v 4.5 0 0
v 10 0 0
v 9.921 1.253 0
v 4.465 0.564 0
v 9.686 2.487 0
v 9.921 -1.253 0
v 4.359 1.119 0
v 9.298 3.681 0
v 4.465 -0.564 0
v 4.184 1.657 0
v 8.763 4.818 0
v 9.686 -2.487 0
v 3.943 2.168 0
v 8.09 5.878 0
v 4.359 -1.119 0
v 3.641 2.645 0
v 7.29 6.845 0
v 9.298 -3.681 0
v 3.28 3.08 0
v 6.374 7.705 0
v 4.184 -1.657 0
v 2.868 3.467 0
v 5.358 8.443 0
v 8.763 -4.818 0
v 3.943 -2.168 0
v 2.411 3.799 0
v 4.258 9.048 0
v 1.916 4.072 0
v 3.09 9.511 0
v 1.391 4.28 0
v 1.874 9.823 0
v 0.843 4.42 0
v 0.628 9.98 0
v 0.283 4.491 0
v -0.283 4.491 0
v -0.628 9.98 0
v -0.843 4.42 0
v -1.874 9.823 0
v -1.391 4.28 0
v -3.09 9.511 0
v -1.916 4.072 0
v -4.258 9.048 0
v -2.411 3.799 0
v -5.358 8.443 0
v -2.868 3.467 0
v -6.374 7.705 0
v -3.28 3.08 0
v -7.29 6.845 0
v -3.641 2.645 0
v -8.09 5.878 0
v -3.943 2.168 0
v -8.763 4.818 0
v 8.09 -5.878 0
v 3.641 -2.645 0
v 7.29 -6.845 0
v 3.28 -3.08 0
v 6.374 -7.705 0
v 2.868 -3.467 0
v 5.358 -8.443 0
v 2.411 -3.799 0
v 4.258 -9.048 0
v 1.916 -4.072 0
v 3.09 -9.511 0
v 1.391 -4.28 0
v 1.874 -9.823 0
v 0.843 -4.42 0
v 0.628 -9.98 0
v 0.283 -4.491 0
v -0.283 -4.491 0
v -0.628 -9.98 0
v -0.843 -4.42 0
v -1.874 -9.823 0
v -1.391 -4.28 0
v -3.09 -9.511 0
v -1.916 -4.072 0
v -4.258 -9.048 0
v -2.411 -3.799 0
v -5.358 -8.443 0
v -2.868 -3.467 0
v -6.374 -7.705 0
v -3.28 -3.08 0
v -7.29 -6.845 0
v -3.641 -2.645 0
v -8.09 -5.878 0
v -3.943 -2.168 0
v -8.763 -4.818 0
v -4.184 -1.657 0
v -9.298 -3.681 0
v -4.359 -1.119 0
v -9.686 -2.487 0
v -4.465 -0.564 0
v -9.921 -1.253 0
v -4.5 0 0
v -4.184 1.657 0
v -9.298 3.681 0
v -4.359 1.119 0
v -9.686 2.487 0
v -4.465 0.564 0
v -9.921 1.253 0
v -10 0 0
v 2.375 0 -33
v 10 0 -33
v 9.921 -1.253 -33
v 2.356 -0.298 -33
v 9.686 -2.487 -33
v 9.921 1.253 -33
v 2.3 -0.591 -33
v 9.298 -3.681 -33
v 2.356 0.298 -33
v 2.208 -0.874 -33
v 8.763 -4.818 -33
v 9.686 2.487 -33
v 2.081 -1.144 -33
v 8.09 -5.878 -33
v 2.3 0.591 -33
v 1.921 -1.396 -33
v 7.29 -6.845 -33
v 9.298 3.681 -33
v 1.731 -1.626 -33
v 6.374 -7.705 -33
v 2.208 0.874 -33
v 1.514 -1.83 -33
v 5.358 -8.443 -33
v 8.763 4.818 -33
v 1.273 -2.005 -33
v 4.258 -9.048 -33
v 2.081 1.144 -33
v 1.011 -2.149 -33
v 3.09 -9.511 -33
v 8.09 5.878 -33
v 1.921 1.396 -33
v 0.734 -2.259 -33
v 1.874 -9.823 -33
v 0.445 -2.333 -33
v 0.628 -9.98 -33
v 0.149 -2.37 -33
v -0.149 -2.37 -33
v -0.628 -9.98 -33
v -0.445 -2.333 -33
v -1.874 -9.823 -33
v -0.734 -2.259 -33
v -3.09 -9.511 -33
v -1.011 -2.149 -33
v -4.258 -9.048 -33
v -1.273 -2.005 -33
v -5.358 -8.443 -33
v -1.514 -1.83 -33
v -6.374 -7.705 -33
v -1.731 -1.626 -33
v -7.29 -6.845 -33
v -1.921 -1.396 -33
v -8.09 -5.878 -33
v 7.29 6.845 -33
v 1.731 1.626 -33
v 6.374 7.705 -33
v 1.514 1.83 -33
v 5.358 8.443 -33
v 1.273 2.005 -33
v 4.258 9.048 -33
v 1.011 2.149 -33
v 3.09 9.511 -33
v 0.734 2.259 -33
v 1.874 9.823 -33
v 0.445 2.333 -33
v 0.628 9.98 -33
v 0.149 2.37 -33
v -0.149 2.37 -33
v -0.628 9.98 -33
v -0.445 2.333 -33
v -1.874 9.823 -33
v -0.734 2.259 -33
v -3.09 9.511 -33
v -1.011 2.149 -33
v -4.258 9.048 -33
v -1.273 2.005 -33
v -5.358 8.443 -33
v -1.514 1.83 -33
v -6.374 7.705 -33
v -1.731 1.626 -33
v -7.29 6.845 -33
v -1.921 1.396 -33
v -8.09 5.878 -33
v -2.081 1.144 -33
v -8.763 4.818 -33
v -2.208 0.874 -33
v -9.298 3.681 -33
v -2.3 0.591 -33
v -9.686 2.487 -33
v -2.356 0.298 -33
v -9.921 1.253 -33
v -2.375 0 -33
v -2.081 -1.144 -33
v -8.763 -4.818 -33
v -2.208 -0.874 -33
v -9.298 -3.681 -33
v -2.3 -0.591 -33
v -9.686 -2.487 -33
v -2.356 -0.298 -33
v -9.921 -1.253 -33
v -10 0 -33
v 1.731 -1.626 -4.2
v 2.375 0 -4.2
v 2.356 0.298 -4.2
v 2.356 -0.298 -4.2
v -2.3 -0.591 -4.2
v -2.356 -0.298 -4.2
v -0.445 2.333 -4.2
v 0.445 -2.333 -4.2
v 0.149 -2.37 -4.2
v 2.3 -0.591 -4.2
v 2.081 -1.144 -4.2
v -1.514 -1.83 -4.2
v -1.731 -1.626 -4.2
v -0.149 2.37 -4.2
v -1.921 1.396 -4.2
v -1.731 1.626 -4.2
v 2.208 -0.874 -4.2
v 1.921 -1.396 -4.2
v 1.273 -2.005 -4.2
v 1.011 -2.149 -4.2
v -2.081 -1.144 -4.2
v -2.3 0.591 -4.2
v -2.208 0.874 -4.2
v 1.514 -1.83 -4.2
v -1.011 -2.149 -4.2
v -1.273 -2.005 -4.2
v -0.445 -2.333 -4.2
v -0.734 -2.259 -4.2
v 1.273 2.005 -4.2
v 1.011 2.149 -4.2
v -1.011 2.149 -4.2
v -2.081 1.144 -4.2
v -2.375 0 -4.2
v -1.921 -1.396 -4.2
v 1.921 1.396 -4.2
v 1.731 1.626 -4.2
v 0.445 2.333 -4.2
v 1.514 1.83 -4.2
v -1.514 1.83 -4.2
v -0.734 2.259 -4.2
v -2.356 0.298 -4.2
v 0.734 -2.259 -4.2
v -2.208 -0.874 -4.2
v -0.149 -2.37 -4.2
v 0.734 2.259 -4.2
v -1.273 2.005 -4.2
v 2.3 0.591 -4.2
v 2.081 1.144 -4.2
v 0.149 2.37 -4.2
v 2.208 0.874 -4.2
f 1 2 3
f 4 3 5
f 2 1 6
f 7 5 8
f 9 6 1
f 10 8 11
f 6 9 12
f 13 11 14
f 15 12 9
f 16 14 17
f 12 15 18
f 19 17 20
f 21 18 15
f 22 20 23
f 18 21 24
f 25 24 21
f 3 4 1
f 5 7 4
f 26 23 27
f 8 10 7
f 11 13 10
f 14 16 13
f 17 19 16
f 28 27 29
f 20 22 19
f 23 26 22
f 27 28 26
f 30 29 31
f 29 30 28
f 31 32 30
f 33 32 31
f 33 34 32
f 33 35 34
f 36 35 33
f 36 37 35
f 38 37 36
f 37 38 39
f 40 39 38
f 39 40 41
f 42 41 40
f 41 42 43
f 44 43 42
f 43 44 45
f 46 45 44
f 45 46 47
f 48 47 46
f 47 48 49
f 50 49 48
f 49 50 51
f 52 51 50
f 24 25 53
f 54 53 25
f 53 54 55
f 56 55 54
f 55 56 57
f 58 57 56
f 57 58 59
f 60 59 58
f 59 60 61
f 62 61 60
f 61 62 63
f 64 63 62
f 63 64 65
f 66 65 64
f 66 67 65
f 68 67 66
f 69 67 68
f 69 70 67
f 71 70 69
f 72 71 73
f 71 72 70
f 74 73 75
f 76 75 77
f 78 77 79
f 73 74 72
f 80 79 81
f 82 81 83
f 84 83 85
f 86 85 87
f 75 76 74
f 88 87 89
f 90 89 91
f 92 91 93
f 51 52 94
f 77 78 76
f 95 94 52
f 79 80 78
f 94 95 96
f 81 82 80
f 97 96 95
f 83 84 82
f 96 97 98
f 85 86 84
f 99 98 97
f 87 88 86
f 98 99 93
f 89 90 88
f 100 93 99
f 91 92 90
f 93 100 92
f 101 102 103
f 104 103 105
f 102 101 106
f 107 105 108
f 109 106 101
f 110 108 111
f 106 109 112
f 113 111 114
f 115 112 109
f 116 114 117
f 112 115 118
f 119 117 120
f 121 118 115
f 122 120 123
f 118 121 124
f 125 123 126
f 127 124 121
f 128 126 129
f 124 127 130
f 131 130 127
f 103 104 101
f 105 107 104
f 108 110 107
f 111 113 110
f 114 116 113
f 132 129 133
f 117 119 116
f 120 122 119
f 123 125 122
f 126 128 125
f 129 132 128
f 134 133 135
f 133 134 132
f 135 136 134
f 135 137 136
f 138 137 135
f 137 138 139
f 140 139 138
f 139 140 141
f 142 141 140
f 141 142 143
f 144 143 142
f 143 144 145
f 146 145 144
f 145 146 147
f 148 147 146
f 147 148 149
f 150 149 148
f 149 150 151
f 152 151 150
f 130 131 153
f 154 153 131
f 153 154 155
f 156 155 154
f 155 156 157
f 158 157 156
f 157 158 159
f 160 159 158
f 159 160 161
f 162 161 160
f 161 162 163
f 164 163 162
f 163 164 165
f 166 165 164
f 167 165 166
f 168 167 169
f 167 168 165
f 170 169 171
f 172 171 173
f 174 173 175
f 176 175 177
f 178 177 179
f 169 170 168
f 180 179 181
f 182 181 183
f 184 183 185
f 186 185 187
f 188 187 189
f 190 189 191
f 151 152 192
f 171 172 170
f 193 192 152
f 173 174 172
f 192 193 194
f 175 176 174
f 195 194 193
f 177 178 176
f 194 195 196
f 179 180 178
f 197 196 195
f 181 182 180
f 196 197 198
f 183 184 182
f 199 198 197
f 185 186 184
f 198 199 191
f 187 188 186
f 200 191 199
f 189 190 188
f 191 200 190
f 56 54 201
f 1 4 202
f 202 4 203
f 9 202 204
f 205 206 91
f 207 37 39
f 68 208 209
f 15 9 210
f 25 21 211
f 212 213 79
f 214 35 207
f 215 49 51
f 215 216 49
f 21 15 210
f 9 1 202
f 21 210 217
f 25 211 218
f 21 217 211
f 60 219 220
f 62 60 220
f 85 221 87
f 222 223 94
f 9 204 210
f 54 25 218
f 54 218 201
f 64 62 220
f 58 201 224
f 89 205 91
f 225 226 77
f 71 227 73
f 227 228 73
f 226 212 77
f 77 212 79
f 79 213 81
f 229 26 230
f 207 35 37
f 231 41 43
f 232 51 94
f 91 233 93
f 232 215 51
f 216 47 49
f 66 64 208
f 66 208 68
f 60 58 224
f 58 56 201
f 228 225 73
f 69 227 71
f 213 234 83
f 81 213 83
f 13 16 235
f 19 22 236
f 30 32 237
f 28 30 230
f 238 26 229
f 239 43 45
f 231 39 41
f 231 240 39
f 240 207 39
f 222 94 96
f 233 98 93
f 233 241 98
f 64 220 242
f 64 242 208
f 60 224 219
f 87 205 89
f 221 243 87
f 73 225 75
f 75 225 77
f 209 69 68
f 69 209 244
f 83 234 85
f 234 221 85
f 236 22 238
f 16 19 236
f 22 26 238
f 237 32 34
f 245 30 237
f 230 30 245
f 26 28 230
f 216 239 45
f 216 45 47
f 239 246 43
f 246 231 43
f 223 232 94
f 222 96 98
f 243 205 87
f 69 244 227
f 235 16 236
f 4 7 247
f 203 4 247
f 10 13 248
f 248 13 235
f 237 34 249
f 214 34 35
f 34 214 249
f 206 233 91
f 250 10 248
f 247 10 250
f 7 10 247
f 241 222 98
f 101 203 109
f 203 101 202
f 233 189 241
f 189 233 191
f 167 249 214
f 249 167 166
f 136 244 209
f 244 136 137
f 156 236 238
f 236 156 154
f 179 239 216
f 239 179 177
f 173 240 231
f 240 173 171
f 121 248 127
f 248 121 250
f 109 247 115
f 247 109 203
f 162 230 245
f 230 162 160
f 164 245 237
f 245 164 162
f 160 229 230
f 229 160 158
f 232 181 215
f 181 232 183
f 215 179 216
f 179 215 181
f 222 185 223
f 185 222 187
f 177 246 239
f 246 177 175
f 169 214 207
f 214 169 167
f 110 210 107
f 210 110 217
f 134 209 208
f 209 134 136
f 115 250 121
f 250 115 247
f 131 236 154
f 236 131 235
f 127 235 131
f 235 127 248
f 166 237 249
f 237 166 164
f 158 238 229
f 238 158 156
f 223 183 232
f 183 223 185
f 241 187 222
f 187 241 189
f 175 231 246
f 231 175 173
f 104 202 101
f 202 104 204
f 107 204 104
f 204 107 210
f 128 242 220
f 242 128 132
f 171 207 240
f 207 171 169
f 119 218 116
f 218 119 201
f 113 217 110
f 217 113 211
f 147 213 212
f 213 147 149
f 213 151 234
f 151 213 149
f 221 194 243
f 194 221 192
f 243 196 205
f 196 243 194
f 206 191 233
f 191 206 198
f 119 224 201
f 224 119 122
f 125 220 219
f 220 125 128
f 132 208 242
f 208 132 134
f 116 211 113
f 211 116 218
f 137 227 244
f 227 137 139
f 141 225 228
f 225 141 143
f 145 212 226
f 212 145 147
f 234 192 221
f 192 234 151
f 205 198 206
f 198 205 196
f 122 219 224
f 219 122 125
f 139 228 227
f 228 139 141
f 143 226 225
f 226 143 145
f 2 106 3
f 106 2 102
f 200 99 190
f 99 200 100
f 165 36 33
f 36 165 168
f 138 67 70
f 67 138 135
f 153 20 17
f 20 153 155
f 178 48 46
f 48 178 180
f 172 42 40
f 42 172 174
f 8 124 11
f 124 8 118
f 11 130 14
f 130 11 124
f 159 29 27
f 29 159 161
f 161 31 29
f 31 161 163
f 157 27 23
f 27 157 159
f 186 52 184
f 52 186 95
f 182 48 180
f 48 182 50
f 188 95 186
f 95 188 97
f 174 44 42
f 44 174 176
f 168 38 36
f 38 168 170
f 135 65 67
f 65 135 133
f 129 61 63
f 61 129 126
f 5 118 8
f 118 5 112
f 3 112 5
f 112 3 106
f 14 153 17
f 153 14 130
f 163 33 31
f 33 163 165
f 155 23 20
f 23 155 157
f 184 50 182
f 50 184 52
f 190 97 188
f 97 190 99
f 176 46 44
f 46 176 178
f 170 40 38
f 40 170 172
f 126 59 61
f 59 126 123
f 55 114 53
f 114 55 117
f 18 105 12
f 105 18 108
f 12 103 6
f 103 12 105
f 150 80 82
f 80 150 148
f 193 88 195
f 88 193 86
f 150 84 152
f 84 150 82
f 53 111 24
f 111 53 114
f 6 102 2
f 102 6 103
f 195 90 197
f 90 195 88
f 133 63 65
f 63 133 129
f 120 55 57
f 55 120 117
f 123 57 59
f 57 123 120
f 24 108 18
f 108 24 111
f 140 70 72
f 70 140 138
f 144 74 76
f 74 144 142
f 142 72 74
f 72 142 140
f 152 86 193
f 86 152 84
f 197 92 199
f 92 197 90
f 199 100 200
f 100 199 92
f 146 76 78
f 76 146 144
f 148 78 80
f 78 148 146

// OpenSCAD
$fn = 50;


difference() {
	union() {
		translate(v = [0, 0, -33.0000000000]) {
			cylinder(h = 33, r = 10.0000000000);
		}
		cylinder(h = 0, r = 13.0000000000);
	}
	union() {
		translate(v = [0, 0, 0]) {
			rotate(a = [0, 0, 0]) {
				difference() {
					union() {
						#translate(v = [0, 0, -33.0000000000]) {
							cylinder(h = 33, r = 2.2500000000);
						}
						#translate(v = [0, 0, -4.2000000000]) {
							cylinder(h = 4.2000000000, r1 = 2.3750000000, r2 = 4.5000000000);
						}
						#translate(v = [0, 0, -33.0000000000]) {
							cylinder(h = 33, r = 2.3750000000);
						}
						#translate(v = [0, 0, -33.0000000000]) {
							cylinder(h = 33, r = 2.2500000000);
						}
					}
					union();
				}
			}
		}
	}
}
